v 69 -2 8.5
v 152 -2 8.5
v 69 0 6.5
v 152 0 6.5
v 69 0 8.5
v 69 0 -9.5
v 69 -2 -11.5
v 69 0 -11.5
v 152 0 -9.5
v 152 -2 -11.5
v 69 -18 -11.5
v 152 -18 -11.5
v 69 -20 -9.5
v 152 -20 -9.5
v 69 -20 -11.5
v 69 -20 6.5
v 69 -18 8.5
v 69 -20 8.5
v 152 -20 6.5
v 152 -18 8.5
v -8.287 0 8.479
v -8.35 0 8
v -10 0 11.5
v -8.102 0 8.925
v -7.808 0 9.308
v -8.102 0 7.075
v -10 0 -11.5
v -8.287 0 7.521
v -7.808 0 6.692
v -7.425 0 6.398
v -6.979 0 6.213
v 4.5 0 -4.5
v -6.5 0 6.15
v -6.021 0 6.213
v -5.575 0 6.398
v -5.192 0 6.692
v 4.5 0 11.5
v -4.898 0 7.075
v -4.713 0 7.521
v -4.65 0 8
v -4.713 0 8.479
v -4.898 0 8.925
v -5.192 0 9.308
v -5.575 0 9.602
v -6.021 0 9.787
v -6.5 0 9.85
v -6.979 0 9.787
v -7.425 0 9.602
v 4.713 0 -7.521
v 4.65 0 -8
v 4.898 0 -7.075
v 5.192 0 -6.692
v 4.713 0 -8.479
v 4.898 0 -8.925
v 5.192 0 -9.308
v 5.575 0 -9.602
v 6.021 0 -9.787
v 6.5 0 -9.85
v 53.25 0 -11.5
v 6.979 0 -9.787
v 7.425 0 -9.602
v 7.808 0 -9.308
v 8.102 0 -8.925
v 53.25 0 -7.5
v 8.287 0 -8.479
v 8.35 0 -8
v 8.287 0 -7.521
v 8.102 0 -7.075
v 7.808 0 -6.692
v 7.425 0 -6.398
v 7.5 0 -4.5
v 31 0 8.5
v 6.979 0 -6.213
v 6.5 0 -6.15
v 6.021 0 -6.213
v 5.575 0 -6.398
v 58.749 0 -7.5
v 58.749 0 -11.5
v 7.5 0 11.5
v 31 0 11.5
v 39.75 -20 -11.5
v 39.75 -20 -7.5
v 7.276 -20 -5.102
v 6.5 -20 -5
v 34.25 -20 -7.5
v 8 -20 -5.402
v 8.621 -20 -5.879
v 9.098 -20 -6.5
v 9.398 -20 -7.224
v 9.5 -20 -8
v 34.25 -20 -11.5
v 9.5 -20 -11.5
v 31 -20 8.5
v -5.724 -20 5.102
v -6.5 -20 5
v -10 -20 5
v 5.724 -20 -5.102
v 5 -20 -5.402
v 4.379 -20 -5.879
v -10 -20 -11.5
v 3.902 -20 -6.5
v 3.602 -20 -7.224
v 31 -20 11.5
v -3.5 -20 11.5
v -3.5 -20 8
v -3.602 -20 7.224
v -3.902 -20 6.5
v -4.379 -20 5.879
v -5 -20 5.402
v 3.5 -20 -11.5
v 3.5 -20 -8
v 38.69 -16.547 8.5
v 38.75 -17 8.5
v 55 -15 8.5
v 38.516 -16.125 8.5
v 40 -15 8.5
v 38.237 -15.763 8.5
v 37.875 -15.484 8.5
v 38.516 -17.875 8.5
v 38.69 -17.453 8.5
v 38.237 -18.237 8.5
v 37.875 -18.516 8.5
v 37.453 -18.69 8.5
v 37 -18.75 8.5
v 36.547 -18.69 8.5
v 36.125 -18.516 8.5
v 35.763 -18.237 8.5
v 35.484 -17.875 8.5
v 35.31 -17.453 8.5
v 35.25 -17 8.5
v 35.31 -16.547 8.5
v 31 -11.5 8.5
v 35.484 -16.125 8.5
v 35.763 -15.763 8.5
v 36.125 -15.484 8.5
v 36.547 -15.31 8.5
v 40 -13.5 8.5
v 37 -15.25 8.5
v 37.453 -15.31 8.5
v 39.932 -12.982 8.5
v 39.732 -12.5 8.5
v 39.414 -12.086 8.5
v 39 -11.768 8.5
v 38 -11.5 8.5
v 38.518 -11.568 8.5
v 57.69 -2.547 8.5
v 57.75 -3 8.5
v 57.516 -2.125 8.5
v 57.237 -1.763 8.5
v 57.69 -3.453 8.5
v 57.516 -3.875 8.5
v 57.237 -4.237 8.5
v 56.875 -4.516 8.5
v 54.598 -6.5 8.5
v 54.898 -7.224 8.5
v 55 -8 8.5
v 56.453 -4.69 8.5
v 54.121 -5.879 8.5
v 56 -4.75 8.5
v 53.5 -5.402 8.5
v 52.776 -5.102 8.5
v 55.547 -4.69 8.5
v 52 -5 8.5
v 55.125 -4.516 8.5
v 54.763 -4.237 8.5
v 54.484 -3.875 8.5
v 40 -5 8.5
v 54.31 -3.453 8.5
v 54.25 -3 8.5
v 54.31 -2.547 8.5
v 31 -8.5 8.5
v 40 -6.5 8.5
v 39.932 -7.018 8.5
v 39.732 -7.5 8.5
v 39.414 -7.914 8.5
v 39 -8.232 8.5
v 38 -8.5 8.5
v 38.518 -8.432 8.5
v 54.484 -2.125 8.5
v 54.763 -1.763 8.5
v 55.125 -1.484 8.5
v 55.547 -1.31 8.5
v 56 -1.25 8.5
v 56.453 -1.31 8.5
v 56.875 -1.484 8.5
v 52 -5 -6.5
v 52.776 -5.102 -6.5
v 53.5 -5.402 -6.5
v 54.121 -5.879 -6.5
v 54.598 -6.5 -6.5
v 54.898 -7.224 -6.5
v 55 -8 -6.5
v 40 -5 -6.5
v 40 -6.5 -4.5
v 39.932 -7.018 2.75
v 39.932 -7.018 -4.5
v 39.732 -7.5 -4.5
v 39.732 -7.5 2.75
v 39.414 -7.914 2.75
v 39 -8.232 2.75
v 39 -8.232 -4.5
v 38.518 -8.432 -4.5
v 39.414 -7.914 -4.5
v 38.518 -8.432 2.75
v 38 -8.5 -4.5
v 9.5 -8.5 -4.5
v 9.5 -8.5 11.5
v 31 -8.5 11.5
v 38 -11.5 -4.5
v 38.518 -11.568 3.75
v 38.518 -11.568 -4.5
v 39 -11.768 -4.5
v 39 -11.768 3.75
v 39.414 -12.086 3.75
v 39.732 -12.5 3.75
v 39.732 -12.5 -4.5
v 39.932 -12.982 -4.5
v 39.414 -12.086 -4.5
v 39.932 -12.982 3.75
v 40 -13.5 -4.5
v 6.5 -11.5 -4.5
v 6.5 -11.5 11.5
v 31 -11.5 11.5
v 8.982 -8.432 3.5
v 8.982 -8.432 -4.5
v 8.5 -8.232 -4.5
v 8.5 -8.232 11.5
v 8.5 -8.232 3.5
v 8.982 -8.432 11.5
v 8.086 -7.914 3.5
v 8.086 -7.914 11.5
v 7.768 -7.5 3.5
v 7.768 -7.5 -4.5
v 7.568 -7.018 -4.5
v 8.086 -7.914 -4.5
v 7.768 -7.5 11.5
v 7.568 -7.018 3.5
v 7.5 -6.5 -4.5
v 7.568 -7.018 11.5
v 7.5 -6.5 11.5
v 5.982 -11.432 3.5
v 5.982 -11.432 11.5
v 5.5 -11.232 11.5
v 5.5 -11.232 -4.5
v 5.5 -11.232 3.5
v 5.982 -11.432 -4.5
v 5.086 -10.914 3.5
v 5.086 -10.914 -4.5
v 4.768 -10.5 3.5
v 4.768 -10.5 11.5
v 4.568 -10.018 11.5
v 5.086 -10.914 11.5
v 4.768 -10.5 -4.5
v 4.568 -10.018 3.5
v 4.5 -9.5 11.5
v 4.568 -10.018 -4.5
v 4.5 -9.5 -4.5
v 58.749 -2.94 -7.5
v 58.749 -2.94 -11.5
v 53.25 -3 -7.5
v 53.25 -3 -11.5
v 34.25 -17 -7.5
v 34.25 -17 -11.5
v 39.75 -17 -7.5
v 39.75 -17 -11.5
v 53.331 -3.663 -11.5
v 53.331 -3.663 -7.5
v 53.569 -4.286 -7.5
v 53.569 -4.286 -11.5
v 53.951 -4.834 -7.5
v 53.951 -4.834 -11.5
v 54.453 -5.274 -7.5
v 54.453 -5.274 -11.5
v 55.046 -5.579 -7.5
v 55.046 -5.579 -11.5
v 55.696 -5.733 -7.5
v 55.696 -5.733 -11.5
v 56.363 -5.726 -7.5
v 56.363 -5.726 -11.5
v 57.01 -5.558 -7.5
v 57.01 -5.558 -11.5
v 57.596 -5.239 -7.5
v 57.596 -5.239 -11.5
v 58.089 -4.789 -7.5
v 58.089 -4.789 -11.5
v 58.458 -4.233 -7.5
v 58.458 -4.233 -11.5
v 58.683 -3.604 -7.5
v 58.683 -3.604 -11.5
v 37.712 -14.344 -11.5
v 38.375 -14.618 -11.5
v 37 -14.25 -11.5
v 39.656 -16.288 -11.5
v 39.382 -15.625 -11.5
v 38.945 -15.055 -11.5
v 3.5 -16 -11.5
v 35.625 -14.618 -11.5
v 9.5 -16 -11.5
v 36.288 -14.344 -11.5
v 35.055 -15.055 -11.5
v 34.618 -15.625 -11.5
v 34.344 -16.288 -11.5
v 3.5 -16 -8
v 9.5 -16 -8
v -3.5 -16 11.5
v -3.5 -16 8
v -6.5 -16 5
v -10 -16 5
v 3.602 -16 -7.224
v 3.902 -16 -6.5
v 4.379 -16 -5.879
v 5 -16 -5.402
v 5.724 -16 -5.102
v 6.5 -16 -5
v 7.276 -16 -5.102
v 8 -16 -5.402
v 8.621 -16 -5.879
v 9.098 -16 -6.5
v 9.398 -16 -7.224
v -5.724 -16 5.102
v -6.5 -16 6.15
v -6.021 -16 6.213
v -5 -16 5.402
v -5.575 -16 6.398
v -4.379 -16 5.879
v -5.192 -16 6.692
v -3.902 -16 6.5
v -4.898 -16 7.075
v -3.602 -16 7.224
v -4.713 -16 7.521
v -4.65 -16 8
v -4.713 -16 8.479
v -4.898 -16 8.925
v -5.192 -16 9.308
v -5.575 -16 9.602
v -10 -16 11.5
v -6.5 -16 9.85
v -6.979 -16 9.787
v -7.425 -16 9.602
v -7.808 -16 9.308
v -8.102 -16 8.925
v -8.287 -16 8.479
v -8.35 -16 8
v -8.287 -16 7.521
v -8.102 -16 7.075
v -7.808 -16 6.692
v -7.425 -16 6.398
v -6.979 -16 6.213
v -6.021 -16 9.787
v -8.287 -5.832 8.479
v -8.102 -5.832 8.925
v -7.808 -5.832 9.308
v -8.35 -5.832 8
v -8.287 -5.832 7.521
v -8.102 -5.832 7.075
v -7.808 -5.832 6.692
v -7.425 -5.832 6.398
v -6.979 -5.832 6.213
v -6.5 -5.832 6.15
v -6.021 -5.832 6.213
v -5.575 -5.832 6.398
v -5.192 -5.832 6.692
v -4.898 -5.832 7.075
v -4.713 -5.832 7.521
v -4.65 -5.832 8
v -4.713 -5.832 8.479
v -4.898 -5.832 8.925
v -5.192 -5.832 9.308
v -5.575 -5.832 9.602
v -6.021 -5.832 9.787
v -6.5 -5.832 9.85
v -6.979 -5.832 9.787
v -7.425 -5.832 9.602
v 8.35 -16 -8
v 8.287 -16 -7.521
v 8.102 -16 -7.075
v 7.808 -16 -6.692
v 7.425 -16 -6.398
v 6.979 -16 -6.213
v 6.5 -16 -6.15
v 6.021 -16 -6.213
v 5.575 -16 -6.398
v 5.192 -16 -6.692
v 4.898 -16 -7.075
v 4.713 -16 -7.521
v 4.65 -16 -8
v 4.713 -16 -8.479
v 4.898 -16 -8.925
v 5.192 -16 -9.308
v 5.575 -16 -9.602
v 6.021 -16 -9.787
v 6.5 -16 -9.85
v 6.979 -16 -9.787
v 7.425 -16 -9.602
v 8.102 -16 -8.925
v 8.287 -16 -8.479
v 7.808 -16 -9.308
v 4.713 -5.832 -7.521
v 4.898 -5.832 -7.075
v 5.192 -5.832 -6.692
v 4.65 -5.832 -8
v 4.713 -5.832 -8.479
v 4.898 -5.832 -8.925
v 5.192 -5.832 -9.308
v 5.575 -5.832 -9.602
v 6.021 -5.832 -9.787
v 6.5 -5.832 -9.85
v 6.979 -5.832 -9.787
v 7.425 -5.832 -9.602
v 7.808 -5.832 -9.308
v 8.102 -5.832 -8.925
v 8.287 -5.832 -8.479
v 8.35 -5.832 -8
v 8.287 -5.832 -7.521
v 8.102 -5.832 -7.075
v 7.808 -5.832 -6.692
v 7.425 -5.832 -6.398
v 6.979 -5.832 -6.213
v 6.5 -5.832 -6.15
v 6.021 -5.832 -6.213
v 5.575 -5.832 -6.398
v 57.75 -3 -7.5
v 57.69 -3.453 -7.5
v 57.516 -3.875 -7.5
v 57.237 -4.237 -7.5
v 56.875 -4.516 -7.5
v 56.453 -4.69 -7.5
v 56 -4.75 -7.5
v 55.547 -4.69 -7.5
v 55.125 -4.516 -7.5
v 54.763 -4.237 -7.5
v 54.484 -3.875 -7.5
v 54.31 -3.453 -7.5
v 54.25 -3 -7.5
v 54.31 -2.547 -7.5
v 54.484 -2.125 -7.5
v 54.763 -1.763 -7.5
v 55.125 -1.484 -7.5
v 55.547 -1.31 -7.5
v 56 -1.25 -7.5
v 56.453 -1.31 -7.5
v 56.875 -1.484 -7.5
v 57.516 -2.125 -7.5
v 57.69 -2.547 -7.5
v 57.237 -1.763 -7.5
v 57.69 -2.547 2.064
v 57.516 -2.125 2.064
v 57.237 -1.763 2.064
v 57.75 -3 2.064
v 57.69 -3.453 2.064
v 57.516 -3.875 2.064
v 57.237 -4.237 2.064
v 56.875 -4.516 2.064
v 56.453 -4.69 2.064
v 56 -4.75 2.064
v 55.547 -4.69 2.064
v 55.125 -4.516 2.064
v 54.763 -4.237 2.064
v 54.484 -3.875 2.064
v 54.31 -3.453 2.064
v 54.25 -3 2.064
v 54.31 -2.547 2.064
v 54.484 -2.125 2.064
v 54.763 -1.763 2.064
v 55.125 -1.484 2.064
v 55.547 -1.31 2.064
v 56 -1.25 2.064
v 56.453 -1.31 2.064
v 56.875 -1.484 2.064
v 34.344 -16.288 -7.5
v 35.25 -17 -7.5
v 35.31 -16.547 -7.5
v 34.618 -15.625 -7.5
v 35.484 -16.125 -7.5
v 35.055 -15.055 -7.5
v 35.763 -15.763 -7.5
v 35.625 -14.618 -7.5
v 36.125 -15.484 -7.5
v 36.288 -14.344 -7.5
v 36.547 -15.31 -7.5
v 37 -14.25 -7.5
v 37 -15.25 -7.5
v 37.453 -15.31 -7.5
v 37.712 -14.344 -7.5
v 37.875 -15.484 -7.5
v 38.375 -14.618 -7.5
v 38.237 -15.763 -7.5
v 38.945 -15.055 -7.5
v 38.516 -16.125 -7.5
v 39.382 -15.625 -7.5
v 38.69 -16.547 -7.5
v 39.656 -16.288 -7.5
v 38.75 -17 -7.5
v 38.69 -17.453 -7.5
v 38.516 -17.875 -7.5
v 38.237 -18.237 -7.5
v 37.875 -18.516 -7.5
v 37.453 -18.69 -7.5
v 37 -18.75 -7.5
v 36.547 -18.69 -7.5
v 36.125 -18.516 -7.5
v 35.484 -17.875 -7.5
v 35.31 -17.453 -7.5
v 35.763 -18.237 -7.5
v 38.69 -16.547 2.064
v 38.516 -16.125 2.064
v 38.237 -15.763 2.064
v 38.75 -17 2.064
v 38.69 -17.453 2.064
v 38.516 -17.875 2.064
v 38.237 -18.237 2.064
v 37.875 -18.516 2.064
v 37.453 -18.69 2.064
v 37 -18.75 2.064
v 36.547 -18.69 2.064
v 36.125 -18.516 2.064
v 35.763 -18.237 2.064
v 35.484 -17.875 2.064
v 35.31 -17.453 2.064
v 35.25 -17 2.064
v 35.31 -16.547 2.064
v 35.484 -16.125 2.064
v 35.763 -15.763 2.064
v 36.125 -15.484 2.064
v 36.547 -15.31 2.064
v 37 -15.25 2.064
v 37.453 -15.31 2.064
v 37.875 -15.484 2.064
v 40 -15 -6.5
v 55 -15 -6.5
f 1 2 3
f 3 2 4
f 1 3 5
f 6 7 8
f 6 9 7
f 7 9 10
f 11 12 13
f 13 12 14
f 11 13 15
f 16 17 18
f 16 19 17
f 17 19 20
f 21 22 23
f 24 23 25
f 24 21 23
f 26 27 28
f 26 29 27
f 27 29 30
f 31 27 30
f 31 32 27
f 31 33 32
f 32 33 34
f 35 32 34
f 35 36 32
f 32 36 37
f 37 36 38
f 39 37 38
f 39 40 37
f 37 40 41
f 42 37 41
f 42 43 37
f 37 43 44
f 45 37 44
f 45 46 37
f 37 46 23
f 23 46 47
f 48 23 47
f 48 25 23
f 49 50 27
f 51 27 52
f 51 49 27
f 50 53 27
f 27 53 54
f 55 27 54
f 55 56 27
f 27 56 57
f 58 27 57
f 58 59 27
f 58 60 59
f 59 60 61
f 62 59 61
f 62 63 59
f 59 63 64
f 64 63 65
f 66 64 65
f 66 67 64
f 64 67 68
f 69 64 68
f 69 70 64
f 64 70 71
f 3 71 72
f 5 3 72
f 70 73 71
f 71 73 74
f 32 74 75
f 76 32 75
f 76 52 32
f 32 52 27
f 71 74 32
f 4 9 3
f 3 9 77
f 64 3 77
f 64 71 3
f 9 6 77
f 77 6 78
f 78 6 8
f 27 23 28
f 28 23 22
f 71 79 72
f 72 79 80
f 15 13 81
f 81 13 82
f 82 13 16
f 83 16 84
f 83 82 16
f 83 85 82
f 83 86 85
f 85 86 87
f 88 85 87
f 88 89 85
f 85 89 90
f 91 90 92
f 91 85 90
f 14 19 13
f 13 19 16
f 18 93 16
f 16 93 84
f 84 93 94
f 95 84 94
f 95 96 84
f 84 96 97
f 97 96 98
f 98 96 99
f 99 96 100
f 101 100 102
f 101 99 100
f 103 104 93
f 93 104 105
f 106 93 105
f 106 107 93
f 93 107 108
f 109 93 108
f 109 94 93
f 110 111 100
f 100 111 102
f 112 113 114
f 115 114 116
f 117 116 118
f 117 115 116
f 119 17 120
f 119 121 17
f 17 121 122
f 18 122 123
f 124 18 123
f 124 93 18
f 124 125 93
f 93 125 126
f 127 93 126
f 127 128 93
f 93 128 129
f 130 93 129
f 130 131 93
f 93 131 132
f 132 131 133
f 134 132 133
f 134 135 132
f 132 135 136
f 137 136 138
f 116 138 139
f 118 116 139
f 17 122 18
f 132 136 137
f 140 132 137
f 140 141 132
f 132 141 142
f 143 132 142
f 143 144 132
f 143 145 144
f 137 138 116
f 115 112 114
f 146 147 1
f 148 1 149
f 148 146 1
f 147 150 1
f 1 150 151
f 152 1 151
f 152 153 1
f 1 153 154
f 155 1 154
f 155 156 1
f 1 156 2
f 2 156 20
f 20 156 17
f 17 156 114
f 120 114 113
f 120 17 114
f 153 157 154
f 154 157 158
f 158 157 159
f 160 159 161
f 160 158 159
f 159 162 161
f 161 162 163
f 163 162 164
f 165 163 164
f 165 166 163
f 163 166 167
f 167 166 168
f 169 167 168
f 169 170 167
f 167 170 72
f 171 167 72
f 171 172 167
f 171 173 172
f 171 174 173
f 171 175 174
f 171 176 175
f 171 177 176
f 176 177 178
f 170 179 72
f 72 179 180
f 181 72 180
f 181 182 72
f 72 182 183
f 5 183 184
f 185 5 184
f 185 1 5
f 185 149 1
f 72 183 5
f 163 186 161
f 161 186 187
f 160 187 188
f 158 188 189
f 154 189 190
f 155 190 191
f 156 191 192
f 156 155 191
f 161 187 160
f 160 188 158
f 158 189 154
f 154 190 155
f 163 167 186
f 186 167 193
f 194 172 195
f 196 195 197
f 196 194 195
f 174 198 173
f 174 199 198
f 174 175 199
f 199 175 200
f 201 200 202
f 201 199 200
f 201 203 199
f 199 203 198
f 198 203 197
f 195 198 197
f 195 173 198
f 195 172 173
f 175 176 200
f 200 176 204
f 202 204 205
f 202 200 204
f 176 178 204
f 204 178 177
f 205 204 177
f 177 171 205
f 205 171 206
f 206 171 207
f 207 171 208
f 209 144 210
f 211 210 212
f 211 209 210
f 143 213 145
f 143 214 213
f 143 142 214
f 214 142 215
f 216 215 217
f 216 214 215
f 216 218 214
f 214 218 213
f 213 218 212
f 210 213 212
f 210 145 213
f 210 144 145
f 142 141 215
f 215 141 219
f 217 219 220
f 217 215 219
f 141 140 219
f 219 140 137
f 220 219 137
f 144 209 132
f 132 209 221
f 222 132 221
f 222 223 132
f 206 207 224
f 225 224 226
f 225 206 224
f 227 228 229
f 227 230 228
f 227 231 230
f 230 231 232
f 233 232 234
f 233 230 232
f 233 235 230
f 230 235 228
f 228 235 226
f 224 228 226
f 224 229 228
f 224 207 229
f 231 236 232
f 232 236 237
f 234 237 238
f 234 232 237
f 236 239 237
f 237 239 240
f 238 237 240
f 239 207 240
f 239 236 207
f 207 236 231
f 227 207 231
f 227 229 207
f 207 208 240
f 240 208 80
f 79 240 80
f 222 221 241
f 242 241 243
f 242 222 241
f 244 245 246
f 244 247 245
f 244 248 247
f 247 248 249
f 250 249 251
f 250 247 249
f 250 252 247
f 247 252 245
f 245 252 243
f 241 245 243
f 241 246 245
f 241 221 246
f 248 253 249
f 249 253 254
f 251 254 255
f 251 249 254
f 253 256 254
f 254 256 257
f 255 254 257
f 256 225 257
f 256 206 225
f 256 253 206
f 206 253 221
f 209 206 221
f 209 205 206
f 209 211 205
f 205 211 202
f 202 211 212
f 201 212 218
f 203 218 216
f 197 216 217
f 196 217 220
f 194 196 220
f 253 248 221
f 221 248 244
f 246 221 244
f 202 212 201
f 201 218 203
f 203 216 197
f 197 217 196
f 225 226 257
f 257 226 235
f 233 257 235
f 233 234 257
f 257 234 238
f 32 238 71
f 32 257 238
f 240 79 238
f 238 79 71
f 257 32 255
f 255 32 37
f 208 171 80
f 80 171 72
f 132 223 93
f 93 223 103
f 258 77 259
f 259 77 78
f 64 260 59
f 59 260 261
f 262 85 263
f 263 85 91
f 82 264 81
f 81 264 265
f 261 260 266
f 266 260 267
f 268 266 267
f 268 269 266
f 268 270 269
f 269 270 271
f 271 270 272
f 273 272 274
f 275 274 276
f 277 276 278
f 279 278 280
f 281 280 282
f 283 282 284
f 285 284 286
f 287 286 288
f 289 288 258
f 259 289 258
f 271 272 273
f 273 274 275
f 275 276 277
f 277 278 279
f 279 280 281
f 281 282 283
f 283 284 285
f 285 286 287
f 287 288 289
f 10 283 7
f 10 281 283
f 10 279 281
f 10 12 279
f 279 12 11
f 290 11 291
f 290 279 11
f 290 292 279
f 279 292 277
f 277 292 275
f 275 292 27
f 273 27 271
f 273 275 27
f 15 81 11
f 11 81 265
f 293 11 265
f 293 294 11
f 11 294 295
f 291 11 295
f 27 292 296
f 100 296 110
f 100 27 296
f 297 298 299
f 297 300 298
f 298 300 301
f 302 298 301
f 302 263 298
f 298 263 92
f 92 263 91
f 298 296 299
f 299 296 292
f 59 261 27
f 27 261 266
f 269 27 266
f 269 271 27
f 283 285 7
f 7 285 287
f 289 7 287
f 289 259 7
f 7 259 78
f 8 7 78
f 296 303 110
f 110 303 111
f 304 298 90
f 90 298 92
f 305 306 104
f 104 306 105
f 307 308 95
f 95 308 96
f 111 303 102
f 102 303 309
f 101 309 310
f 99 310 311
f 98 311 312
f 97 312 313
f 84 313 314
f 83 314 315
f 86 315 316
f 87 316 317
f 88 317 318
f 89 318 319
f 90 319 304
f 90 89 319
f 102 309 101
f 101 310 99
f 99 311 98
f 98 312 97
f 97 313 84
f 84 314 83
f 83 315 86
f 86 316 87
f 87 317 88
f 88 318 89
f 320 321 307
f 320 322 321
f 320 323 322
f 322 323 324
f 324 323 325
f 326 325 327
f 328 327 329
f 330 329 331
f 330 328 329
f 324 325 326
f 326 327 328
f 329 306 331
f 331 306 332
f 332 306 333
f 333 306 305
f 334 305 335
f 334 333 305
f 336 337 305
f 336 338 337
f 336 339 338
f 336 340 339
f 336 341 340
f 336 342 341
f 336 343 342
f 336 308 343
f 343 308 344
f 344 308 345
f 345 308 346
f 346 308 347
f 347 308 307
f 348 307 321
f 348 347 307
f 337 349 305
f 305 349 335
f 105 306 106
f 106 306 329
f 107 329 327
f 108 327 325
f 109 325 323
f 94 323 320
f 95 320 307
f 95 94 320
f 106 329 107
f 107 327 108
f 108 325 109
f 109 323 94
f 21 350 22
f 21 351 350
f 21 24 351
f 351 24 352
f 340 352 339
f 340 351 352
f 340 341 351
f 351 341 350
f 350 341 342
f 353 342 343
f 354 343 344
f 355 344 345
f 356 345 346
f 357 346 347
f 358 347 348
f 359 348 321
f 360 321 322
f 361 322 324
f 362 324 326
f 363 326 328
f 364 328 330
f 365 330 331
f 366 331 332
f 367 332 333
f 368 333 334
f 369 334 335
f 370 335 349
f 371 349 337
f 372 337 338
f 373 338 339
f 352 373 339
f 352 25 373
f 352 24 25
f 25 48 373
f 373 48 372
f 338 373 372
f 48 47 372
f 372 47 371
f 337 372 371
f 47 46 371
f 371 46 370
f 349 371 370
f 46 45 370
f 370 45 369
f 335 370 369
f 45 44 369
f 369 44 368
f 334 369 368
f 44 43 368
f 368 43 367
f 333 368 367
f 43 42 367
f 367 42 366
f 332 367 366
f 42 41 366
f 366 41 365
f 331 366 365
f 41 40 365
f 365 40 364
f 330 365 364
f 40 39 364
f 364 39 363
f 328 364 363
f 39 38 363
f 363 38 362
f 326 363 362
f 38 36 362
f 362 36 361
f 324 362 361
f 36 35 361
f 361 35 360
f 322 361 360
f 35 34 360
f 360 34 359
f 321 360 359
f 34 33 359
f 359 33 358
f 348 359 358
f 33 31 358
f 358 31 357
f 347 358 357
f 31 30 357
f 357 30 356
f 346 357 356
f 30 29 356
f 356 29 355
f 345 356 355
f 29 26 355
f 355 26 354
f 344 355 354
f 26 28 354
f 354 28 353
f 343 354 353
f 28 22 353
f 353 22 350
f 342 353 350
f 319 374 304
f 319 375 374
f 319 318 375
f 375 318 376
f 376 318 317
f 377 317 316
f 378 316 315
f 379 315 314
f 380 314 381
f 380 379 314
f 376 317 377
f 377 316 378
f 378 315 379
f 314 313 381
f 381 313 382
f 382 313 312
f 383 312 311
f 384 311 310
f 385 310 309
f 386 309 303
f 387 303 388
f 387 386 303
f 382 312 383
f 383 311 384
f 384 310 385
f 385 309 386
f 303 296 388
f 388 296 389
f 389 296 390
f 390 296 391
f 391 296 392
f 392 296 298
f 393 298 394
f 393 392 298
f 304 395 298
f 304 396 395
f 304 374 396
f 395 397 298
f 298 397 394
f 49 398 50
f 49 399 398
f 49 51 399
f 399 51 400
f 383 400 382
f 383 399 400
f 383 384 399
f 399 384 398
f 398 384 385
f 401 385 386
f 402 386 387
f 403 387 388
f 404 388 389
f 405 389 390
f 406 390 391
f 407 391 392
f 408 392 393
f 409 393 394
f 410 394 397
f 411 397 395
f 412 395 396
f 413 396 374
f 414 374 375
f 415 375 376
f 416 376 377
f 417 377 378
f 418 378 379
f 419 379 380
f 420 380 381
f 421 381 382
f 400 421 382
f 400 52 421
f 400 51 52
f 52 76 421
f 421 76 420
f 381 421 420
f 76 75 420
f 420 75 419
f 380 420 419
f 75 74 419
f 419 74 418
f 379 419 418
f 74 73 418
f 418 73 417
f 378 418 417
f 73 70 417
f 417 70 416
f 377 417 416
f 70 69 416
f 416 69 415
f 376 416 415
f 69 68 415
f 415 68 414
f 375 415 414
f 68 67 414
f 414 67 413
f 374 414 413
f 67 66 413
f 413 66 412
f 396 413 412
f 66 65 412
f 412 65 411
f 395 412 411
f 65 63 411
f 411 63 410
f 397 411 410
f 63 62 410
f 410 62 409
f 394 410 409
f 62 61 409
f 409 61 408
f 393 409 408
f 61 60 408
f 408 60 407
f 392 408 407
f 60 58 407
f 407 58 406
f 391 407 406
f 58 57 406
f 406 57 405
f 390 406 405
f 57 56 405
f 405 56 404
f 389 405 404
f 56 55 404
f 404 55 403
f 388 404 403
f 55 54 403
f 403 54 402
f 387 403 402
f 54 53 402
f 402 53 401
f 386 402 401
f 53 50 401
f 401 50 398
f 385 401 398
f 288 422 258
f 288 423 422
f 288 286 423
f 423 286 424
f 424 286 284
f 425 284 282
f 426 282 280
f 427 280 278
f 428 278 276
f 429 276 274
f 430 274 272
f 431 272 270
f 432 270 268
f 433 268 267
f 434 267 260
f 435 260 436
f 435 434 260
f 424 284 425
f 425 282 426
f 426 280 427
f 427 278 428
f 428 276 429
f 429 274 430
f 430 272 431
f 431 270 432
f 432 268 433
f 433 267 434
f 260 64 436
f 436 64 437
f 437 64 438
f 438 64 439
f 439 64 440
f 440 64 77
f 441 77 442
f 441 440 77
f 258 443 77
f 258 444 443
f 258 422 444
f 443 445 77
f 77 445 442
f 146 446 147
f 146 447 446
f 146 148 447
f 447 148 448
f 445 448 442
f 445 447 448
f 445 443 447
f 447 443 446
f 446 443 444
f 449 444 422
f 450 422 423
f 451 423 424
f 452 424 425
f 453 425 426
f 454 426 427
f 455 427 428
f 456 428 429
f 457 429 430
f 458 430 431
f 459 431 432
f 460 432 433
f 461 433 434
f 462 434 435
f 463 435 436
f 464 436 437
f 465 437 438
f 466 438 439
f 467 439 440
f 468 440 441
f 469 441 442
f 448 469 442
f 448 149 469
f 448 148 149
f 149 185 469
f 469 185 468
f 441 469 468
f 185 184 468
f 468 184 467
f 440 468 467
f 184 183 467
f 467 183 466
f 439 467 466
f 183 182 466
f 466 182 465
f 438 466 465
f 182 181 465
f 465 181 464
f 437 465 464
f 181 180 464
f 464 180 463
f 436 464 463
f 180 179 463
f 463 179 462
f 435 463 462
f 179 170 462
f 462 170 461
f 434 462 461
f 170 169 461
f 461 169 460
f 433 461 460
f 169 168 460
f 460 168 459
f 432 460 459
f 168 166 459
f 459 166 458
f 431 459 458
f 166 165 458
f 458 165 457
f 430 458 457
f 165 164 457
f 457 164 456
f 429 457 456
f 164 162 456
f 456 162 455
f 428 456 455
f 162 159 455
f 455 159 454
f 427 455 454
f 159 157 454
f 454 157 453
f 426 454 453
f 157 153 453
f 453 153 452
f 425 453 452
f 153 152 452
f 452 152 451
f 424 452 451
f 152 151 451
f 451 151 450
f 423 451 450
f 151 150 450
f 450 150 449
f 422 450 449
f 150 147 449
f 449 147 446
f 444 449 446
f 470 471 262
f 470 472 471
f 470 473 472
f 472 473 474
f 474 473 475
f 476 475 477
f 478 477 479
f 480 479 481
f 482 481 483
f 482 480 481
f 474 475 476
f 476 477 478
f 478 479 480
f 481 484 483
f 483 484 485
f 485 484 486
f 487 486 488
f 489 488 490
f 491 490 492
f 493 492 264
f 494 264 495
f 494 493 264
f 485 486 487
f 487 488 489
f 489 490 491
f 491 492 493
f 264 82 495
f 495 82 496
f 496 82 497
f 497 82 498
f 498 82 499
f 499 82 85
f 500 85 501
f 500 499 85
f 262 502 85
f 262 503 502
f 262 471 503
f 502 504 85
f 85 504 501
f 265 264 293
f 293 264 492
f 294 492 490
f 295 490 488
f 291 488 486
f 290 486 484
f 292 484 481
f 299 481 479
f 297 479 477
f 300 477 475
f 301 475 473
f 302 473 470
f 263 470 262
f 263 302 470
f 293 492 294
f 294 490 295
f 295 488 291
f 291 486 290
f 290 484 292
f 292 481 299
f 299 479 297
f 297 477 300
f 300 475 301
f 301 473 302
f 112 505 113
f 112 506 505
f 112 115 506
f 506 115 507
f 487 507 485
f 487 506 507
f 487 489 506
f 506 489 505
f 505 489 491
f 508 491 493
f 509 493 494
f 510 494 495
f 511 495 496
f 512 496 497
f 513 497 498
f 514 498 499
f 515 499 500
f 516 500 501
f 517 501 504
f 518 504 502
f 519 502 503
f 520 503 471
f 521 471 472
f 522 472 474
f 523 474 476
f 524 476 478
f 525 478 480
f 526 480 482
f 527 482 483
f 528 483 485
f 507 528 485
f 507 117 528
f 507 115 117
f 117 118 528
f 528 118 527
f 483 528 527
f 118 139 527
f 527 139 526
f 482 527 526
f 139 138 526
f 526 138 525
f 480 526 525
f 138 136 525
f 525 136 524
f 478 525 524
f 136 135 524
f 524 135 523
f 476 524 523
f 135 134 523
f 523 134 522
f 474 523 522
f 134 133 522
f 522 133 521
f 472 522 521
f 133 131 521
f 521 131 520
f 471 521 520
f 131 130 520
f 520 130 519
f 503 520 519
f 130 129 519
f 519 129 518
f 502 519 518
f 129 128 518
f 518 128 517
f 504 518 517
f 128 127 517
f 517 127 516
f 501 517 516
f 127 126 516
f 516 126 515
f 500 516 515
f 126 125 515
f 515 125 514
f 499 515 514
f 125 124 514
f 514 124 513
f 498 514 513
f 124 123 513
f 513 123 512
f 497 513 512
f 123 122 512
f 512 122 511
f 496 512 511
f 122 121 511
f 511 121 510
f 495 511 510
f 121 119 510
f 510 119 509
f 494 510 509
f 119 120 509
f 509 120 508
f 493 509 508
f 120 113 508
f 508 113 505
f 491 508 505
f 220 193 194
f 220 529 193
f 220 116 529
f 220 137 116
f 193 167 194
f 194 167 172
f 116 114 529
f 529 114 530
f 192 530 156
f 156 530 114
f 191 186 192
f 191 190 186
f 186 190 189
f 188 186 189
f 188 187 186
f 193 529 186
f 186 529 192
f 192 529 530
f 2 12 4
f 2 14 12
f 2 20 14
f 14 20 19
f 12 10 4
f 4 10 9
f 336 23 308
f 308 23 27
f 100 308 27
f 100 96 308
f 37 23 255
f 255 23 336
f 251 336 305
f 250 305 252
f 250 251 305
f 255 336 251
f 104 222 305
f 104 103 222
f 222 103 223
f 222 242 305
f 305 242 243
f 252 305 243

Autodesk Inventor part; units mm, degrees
ref_plane "YZ Plane" through (0, 0, 0) normal (1, 0, 0) x (0, 1, 0)
ref_plane "XZ Plane" through (0, 0, 0) normal (0, 1, 0) x (-1, 0, 0)
ref_plane "XY Plane" through (0, 0, 0) normal (0, 0, 1) x (1, 0, 0)
sketch "Sketch1" plane through (0, 0, 0) normal (0, 1, 0) x (-1, 0, 0)
  line L0 (-10, 11.5) -> (10, 11.5)
  line L1 (10, 11.5) -> (10, -11.5)
  line L2 (10, -11.5) -> (-10, -11.5)
  line L3 (-10, -11.5) -> (-10, 11.5)
  line L4 (-10, 11.5) -> (10, -11.5) construction
  line L5 (10, 11.5) -> (-10, -11.5) construction
  point P0 (0, 0)
  dimension "d0" = 20
  dimension "d1" = 23
extrude "Extrusion2" add sketch "Sketch1" against normal blind 20
ref_plane "Work Plane1" through (-10, 0, 0) normal (0, 0, 1) x (1, 0, 0)
ref_plane "Work Plane2" through (0, -2, 0) normal (0, 1, 0) x (1, 0, 0)
sketch "Sketch11" plane through (0, -2, 0) normal (0, 1, 0) x (1, 0, 0)
  point P0 (0, 0)
sketch "Sketch12" plane through (10, 0, 11.5) normal (1, 0, 0) x (0, 0, -1)
  line L0 (23, -20) -> (0, -20)
  line L1 (0, -20) -> (0, 0)
  line L2 (0, 0) -> (23, 0)
  line L3 (23, 0) -> (23, -20)
  point P0 (11.5, 0)
  dimension "d41" = 23
  dimension "d42" = 20
extrude "Extrusion4" add sketch "Sketch12" along normal blind 22
sketch "Sketch13" plane through (32, 0, 11.5) normal (1, 0, 0) x (0, 0, -1)
  line L0 (23, 0) -> (23, -20) projected
  line L1 (23, -20) -> (3, -20)
  line L2 (3, -20) -> (3, 0)
  line L3 (3, 0) -> (23, 0)
  line L4 (23, 0) -> (23, -20)
  point P0 (11.5, 0)
  dimension "d45" = 20
extrude "Extrusion5" add sketch "Sketch13" along normal blind 120
sketch "Sketch26" plane through (32, -20, 8.5) normal (0, 0, 1) x (1, 0, 0)
  line L0 (8, 15) -> (23, 15)
  line L1 (23, 15) -> (23, 5)
  line L2 (23, 5) -> (8, 5)
  line L3 (8, 5) -> (8, 15)
  line L4 (0, 20) -> (120, 20) projected
  line L5 (0, 0) -> (120, 0) projected
  point P0 (-32, 20)
  dimension "d91" = 15
  dimension "d92" = 10
  dimension "d93" = 5
  dimension "d94" = 5
extrude "Extrusion12" cut sketch "Sketch26" against normal blind 15
sketch "Sketch28" plane through (10, 0, -11.5) normal (0, 0, -1) x (-1, 0, 0)
  line L0 (-22, 0) -> (-22, -20) projected
  line L1 (20, -20) -> (-142, -20) projected
  line L2 (-22, 0) -> (-142, 0) projected
  point P0 (10, 0)
  point P1 (-27, -17)
  point P2 (-46, -3)
  dimension "d101" = 19
  dimension "d102" = 5
  dimension "d103" = 3
  dimension "d104" = 3
hole "Hole3" at (56, -3, -11.5) at (37, -17, -11.5) direction (0, 0, 1) diameter 3.5 end through all counterbore diameter 5.5 counterbore depth 4
sketch "Sketch29" plane through (0, -20, 0) normal (0, -1, 0) x (1, 0, 0)
  line L0 (10, 11.5) -> (-10, 11.5) projected
  line L1 (10, -11.5) -> (10, 11.5) projected
  line L2 (-10, -11.5) -> (152, -11.5) projected
  line L3 (-10, 11.5) -> (-10, -11.5) projected
  point P0 (0, 0)
  point P1 (6.5, -8)
  point P2 (-6.5, 8)
  dimension "d112" = 3.5
  dimension "d113" = 3.5
  dimension "d128" = 3.5
  dimension "d129" = 3.5
hole "Hole4" at (-6.5, -20, 8) at (6.5, -20, -8) direction (0, 1, 0) diameter 3.7 end through all counterbore diameter 6 counterbore depth 4
sketch "Sketch38" plane through (0, -20, 0) normal (0, -1, 0) x (1, 0, 0)
  circle A0 centre (-6.5, 8) radius 3 projected
  circle A1 centre (6.5, -8) radius 3 projected
  circle A2 centre (-6.5, 8) radius 3 projected
  circle A3 centre (6.5, -8) radius 3 projected
  line L0 (-10, 11.5) -> (32, 11.5) projected
  line L1 (-10, 11.5) -> (-10, -11.5) projected
  line L2 (-10, -11.5) -> (152, -11.5) projected
  line L3 (152, 8.5) -> (152, -11.5) projected
  line L4 (32, 8.5) -> (152, 8.5) projected
  line L5 (32, 11.5) -> (32, 8.5) projected
  circle A4 centre (-6.5, 8) radius 3 projected
  line L6 (-10, 11.5) -> (-10, -11.5) projected
  line L7 (-10, -11.5) -> (152, -11.5) projected
  line L8 (3.5, -11.5) -> (3.5, -8)
  circle A5 centre (6.5, -8) radius 3 projected
  line L9 (9.5, -8) -> (9.5, -11.5)
  line L10 (-3.5, 11.5) -> (-3.5, 8)
  line L11 (-10, 11.5) -> (-10, -11.5) projected
  line L12 (-10, 5) -> (-6.5, 5)
  point P0 (0, 0)
extrude "Extrusion17" cut sketch "Sketch38" against normal up to surface (4 mm away) contours A0 L12 L1 L0 L10 | L8 A1 L9 L2
sketch "Sketch33" plane through (-10, -20, -11.5) normal (0, 0, -1) x (-1, 0, 0)
  circle A0 centre (-66, 17) radius 2.75
  circle A1 centre (-47, 3) radius 2.75
  line L0 (0, 20) -> (-162, 20)
  line L1 (0, 0) -> (-162, 0)
  circle A2 centre (-66, 17) radius 2.75
  line L2 (-63.25, 17) -> (-63.25, 20)
  line L3 (-68.749347, 16.940067) -> (-68.749347, 20)
  line L4 (-49.75, 3) -> (-49.75, 0)
  line L5 (-44.25, 3) -> (-44.25, 0)
  point P0 (-10, 20)
sketch "Sketch33 outline for Extrusion13" plane through (-10, -20, -11.5) normal (0, 0, -1) x (-1, 0, 0)
  arc A0 (-44.25, 3) -> (-49.75, 3) centre (-47, 3) cw
  line L0 (-44.25, 0) -> (-44.25, 3)
  line L1 (-49.75, 0) -> (-44.25, 0)
  line L2 (-49.75, 3) -> (-49.75, 0)
  arc A1 (-63.25, 17) -> (-68.749347, 17.059933) centre (-66, 17) ccw
  line L3 (-68.749347, 20) -> (-68.749347, 17.059933)
  line L4 (-63.25, 20) -> (-68.749347, 20)
  line L5 (-63.25, 17) -> (-63.25, 20)
extrude "Extrusion13" cut sketch "Sketch33 outline for Extrusion13" against normal up to surface (4 mm away)
sketch "Sketch34" plane through (32, 0, 11.5) normal (1, 0, 0) x (0, 0, -1)
  line L0 (3, -20) -> (3, 0) projected
  line L1 (3, 0) -> (0, 0) projected
  line L2 (0, 0) -> (0, -20) projected
  line L3 (0, -20) -> (3, -20) projected
  point P0 (11.5, 0)
extrude "ajustement" cut sketch "Sketch34" against normal blind 1
sketch "Sketch37" plane through (-10, -20, 11.5) normal (0, 0, 1) x (1, 0, 0)
  line L0 (20, 20) -> (20, 0) construction
  line L1 (0, 0) -> (41, 0) construction
  line L2 (20, 20) -> (40, 20) construction
  line L3 (50, 5) -> (50, 15) construction
  line L4 (50, 10) -> (20, 10) construction
  line L5 (50, 8.5) -> (17.5, 8.5)
  line L6 (17.5, 8.5) -> (14.5, 8.5)
  line L7 (14.5, 8.5) -> (14.5, 20)
  line L8 (41, 20) -> (0, 20) projected
  line L9 (50, 11.5) -> (17.5, 11.5)
  line L10 (17.5, 11.5) -> (17.5, 20)
  line L11 (17.5, 20) -> (14.5, 20)
  line L12 (50, 8.5) -> (50, 11.5)
  point P0 (10, 20)
  point P1 (20, 20)
  point P2 (0, 20)
  point P3 (17.5, 12)
  dimension "d137" = 90
  dimension "d138" = 2.5
  dimension "d139" = 1.5
  dimension "d140" = 1.5
  dimension "d141" = 3
ref_plane "Work Plane4" through (-10, -20, -4.5) normal (0, 0, 1) x (1, 0, 0)
extrude "Extrusion16" cut sketch "Sketch37" against normal up to surface (16 mm away)
fillet "Fillet1" radius 2 4 edges at (4.5, -11.5, 3.5) (7.5, -8.5, 3.5) (40, -11.5, 2) (40, -8.5, 2)
fillet "Fillet2" radius 3 1 edges at (55, -5, 1)
sketch "Sketch39" plane through (152, -20, 8.5) normal (0, 0, 1) x (1, 0, 0)
  arc A0 (-97, 12) -> (-100, 15) centre (-100, 12) ccw projected
  line L0 (-112, 15) -> (-100, 15) projected
  line L1 (-112, 5) -> (-112, 15) projected
  line L2 (-97, 5) -> (-112, 5) projected
  line L3 (-97, 12) -> (-97, 5) projected
  line L4 (-121, 11.5) -> (-121, 20) projected
  circle A1 centre (-115, 3) radius 1.75 projected
  line L5 (-121, 0) -> (-121, 8.5) projected
  point P0 (-152, 20)
  point P1 (-104.5, 10)
  dimension "d149" = 16.5
  dimension "d150" = 6
ref_plane "Work Plane5" through (69, 0, 11.5) normal (1, 0, 0) x (0, 0, -1)
sketch "Sketch41" plane through (152, 0, 11.5) normal (1, 0, 0) x (0, 0, -1)
  line L0 (3, -20) -> (23, -20) projected
  line L1 (23, -20) -> (23, 0) projected
  line L2 (23, 0) -> (3, 0) projected
  line L3 (3, 0) -> (3, -20) projected
  line L4 (3, -20) -> (23, -20) projected
  line L5 (5, -20) -> (3, -18)
  line L6 (21, -20) -> (23, -18)
  line L7 (23, -2) -> (21, 0)
  line L8 (23, 0) -> (3, 0) projected
  line L9 (5, 0) -> (3, -2)
  point P0 (11.5, 0)
  dimension "d152" = 2
  dimension "d153" = 2
  dimension "d154" = 2
  dimension "d155" = 2
  dimension "d156" = 2
  dimension "d157" = 2
  dimension "d158" = 2
  dimension "d159" = 2
extrude "Extrusion18" cut sketch "Sketch41" against normal up to surface (83 mm away) contours L3 L5 L0 | L6 L1 L0 | L3 L2 L9 | L7 L2 L1
equation "\"d93\" = d94"
equation "\"d104\" = d103"
equation "\"d113\" = d112"
equation "\"d129\" = d128"
equation "\"d140\" = d139"
equation "\"d153\" = d152"
equation "\"d154\" = d152"
equation "\"d155\" = d152"
equation "\"d156\" = d152"
equation "\"d158\" = d152"
properties part number "bas_de_fourche_gros_bloc"
